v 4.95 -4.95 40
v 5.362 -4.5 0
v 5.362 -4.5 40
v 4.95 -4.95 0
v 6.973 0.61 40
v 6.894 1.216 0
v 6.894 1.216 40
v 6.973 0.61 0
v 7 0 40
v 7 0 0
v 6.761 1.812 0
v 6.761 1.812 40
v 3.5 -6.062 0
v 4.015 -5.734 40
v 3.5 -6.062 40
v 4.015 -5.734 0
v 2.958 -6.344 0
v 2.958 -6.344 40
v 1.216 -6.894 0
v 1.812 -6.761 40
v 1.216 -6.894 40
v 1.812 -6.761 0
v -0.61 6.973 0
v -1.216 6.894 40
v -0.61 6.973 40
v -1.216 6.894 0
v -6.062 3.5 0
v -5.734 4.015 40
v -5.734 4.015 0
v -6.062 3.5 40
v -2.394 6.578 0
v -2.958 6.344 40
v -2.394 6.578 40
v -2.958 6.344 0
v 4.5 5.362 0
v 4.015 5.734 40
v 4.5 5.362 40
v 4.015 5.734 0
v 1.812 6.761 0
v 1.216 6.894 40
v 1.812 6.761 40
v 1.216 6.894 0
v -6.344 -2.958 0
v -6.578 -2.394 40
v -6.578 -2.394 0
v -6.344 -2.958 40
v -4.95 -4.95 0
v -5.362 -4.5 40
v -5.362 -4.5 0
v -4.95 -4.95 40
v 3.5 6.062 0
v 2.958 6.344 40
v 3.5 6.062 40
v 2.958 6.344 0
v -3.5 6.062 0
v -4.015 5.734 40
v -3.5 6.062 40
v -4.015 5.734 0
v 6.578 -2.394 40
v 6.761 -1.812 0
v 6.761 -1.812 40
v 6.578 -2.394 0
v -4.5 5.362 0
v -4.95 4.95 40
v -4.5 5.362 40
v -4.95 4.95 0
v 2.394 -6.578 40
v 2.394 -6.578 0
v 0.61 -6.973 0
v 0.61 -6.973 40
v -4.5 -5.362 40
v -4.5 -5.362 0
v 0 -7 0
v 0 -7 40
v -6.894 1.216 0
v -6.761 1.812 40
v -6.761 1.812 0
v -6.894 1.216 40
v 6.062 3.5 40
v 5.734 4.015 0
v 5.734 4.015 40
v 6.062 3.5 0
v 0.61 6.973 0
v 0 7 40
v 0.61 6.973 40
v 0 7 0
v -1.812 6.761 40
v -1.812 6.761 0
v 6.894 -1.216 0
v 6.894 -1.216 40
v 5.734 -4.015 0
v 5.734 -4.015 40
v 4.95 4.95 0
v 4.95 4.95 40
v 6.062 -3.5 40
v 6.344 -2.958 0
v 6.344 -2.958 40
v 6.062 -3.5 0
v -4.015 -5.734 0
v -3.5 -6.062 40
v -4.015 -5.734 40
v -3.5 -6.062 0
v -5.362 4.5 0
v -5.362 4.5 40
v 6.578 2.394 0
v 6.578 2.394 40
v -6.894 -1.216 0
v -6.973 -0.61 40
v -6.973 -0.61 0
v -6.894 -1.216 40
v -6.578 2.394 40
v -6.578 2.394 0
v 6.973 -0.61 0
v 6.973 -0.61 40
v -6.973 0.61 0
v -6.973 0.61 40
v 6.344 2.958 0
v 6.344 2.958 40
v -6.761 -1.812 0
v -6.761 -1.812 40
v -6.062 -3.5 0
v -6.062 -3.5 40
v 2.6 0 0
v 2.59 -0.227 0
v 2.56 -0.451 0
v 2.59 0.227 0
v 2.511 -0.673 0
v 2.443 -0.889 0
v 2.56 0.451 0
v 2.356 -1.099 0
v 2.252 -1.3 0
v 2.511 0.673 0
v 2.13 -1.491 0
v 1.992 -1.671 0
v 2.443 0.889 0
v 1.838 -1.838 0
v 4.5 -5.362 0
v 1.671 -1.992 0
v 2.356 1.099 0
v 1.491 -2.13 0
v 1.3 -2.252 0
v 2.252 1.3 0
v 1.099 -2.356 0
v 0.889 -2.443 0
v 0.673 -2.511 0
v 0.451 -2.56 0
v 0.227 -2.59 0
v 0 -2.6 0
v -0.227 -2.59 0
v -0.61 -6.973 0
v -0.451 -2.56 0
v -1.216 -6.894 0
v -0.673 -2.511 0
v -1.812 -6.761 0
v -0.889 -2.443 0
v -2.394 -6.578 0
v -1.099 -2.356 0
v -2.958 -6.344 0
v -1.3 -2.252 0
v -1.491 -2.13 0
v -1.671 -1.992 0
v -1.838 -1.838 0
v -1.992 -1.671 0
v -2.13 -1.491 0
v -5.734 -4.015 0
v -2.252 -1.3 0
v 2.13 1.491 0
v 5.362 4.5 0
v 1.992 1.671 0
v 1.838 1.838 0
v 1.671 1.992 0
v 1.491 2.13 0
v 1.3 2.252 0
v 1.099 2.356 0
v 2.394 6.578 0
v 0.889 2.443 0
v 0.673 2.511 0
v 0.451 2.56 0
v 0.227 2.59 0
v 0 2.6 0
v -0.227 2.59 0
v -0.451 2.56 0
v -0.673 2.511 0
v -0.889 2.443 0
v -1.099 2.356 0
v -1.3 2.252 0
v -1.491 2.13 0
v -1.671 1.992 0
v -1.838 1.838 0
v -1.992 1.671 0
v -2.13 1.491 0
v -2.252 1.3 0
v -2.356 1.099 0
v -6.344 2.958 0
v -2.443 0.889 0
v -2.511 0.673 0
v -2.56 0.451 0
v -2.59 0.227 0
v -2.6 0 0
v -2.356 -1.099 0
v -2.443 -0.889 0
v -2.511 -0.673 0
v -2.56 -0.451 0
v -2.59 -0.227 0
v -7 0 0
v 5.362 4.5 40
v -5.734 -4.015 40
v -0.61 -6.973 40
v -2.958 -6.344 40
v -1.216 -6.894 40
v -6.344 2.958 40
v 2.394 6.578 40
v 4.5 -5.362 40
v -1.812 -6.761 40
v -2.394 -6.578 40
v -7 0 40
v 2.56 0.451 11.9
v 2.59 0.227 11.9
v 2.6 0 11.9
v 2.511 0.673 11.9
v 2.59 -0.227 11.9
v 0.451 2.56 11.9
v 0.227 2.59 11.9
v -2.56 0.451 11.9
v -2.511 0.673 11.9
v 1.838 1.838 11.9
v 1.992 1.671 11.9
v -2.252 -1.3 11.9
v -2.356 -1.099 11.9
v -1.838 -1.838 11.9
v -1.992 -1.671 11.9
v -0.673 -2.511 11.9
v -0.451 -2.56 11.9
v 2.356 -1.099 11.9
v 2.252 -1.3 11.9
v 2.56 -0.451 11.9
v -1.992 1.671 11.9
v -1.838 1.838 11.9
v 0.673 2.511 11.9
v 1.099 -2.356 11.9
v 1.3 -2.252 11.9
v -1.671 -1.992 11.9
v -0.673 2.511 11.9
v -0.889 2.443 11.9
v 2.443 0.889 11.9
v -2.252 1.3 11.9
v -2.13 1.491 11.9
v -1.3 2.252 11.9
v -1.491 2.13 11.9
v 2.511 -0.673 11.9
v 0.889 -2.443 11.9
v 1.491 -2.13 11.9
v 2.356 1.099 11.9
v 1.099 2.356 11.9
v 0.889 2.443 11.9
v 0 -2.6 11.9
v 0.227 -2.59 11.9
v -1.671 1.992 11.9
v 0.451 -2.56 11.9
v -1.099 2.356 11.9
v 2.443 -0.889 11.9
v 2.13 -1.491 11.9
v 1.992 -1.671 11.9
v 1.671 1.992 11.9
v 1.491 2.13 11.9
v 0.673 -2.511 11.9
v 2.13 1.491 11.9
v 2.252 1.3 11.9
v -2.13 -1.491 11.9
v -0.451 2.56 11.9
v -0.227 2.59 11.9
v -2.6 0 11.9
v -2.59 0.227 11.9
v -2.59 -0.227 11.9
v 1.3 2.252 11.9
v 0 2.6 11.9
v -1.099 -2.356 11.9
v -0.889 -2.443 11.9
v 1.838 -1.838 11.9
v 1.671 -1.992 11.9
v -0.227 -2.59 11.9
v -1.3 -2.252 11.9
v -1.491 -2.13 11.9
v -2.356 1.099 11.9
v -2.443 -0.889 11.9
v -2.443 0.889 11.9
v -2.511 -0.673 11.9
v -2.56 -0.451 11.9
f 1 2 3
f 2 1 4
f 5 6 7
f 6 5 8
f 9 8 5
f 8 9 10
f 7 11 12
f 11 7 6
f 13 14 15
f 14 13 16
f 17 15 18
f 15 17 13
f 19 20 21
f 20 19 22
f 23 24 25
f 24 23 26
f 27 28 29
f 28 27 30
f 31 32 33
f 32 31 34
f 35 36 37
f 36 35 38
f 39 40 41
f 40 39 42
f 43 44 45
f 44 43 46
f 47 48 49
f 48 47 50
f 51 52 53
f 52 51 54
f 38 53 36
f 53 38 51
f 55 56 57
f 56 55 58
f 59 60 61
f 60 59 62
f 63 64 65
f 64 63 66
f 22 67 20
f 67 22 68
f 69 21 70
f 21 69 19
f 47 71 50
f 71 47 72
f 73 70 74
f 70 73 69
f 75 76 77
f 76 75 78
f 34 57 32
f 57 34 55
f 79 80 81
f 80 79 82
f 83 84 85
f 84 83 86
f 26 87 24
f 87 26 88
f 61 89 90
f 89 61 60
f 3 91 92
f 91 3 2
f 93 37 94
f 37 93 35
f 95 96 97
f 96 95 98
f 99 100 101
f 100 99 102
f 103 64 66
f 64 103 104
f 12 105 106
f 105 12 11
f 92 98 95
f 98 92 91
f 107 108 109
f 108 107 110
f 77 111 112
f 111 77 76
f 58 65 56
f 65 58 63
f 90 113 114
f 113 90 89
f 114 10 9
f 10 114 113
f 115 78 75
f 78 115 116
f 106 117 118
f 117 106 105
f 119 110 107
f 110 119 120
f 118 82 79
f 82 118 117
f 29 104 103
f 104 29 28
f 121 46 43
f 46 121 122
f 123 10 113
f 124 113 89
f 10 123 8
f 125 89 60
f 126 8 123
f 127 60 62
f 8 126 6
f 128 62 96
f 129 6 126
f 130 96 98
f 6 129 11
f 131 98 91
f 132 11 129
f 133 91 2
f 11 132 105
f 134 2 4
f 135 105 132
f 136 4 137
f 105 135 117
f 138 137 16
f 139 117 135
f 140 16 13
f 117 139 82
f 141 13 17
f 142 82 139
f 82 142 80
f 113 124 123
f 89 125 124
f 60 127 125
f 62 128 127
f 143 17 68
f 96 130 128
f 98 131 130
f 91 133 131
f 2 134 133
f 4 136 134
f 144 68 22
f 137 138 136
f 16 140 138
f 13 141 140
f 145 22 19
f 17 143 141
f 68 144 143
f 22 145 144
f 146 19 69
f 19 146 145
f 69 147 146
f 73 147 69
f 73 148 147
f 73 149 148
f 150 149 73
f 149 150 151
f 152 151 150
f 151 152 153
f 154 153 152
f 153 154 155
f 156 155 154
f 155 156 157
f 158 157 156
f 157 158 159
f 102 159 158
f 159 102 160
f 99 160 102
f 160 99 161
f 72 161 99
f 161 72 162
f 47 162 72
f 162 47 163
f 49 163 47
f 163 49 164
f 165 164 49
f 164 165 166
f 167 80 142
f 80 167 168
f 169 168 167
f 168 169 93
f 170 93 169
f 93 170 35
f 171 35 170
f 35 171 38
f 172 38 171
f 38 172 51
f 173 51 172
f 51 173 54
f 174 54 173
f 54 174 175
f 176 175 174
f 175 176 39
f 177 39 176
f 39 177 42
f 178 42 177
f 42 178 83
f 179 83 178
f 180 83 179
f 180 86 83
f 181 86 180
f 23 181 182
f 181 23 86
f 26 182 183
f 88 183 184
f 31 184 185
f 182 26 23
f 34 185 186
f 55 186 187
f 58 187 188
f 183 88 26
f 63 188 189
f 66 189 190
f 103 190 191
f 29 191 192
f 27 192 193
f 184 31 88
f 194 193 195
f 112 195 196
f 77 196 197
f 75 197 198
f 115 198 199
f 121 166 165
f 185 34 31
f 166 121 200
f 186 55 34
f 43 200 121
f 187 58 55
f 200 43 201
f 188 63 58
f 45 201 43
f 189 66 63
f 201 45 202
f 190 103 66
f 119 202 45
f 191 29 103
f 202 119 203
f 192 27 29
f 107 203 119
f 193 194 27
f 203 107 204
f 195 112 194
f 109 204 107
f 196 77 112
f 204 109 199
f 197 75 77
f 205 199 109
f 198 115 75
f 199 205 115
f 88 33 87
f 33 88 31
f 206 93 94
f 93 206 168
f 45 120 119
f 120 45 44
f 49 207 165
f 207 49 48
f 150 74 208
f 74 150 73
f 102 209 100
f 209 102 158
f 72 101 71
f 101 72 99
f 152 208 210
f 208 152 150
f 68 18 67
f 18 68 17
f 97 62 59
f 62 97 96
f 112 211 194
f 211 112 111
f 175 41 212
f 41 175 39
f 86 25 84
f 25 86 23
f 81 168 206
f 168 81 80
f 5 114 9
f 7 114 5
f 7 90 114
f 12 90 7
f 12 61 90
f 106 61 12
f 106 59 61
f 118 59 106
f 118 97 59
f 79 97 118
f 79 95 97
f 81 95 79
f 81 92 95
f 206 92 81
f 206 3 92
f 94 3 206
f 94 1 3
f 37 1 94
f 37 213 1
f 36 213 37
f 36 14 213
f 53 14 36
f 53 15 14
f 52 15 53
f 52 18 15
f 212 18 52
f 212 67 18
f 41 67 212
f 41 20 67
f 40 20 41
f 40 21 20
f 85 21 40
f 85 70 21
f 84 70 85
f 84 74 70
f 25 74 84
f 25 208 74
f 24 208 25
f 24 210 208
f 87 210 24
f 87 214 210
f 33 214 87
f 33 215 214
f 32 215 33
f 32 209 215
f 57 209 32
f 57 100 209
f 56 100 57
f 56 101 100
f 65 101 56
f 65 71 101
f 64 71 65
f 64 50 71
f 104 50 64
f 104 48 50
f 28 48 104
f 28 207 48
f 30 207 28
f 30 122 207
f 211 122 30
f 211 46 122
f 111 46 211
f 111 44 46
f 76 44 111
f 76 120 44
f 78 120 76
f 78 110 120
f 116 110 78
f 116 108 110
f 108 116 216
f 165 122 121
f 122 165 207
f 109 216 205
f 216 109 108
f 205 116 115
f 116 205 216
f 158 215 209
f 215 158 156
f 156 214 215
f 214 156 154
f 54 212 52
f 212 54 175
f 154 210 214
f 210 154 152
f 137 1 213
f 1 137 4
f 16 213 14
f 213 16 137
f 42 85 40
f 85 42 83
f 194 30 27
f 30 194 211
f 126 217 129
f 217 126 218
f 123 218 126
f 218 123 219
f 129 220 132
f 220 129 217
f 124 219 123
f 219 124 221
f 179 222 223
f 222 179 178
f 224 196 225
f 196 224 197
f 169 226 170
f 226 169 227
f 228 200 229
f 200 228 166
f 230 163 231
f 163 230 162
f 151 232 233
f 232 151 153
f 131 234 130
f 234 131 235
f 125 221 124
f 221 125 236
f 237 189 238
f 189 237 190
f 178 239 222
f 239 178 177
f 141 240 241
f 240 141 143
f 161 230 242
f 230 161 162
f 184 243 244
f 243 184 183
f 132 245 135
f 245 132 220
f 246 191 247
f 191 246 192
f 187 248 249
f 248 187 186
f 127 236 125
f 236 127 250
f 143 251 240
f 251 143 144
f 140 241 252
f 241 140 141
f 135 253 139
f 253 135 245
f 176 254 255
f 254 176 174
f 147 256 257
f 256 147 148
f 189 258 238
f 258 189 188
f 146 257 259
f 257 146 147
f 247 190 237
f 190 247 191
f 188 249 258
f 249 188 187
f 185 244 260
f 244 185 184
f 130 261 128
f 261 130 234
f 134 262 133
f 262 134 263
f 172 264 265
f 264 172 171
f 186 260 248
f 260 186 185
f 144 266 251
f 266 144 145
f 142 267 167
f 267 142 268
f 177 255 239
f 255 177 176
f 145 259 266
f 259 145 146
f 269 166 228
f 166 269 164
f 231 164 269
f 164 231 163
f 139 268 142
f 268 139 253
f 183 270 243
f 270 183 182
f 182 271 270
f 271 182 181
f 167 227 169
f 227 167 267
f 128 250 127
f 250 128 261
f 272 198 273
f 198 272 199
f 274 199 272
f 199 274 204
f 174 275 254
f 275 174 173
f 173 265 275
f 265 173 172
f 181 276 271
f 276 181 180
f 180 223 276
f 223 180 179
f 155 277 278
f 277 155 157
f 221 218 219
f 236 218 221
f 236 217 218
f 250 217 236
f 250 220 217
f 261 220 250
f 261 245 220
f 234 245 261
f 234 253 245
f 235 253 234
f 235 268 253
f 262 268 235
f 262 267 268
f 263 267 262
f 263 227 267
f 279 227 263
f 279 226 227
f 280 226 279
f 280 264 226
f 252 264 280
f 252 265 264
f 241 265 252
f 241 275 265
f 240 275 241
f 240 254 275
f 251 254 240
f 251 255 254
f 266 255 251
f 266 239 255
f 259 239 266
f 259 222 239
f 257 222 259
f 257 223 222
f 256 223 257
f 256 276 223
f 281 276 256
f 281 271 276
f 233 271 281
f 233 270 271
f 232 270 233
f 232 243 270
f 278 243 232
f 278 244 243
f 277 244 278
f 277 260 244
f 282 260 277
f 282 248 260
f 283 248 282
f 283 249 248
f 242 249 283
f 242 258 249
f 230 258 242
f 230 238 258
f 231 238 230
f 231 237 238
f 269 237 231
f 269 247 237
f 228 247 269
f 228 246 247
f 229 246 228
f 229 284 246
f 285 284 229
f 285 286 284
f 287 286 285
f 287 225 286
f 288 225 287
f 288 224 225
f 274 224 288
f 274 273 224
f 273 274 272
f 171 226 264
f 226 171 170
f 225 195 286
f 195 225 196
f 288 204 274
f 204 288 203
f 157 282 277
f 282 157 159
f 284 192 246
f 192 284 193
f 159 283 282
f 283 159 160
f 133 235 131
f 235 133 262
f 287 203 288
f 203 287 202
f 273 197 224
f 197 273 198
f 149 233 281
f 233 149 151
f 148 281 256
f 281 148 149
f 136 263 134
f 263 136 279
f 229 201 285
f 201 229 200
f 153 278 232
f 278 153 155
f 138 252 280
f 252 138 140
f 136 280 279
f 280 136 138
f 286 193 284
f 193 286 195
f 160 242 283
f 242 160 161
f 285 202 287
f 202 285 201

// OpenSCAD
// file: parameters.scad
// Coax Faraday Generator Experiments v3 — shared parameters (mm)
// Three-layer coaxial: outer magnets + coil stator + inner magnets
// Orthodox Faraday only — mechanical → electrical. No overunity.
// Target: Anycubic Kobra 3 Max, 0.4 mm nozzle, 0.2 mm layers, PETG preferred.

$fn = 72;

// --- Printer / FDM ---
nozzle = 0.4;
layer = 0.2;
wall = 2.0;                 // ≥2 mm walls on drums
housing_wall = 2.4;
clearance_slip = 0.35;
press_interference = 0.15;  // 608 seat undersize total (~0.1–0.2)
magnet_pocket_xy = 0.25;    // +0.25 mm on diameter (within +0.2–0.3)
magnet_pocket_z = 0.15;     // +0.15 mm depth (within +0.1–0.2)

// --- Magnets (ASSUMPTION: Ø20×5 mm N42 axial discs, not bar stock) ---
magnet_d = 20;
magnet_h = 5;
pole_count = 8;             // alternating N/S around circumference

// --- Radial stack (from axis) ---
// Inner magnet FACE at r=33; magnets 5 mm thick → pocket floor at 33-5=28
r_inner_face = 33;
air_gap = 2.0;              // each side (1–3 mm sweep; nominal 2)
coil_radial = 9.0;          // winding depth
r_coil_inner = r_inner_face + air_gap;          // 35
r_coil_outer = r_coil_inner + coil_radial;      // 44
r_outer_face = r_coil_outer + air_gap;          // 46
// Outer magnet pocket floor (further out): face + thickness
r_outer_floor = r_outer_face + magnet_h;        // 51

inner_drum_od = 2 * (r_inner_face);             // face OD before pockets nuance
inner_drum_core_r = r_inner_face - magnet_h;    // 28
outer_drum_id = 2 * r_outer_face;               // clear to faces
outer_drum_od = 2 * (r_outer_floor + wall);     // ~106

axial_magnet = 22;          // pocket axial span (~magnet_d + margin)
coil_axial = 24;
drum_axial = 28;            // outer/inner drum barrel length

// --- Shaft / bearings 608-2RS ---
shaft_d = 8;
bearing_od = 22;
bearing_id = 8;
bearing_h = 7;
bearing_seat_od = bearing_od - press_interference; // ~21.85

// --- Base ---
base_w = 160;
base_d = 140;
base_h = 8;
post_h = 70;
post_spacing = 100;         // bearing center distance along shaft axis (Y)
post_d = 36;

// --- Crank ---
crank_arm_len = 80;
crank_arm_w = 16;
crank_arm_t = 10;
handle_d = 14;
handle_len = 40;

// --- Fasteners ---
m3_clear = 3.4;
m3_tap = 2.5;
m4_clear = 4.3;
// main file
include <parameters.scad>

module crank_handle() {
    difference() {
        cylinder(h = handle_len, d = handle_d);
        translate([0, 0, -0.1])
            cylinder(h = 12, d = 5.2); // M5 or printed pin
    }
}
crank_handle();
